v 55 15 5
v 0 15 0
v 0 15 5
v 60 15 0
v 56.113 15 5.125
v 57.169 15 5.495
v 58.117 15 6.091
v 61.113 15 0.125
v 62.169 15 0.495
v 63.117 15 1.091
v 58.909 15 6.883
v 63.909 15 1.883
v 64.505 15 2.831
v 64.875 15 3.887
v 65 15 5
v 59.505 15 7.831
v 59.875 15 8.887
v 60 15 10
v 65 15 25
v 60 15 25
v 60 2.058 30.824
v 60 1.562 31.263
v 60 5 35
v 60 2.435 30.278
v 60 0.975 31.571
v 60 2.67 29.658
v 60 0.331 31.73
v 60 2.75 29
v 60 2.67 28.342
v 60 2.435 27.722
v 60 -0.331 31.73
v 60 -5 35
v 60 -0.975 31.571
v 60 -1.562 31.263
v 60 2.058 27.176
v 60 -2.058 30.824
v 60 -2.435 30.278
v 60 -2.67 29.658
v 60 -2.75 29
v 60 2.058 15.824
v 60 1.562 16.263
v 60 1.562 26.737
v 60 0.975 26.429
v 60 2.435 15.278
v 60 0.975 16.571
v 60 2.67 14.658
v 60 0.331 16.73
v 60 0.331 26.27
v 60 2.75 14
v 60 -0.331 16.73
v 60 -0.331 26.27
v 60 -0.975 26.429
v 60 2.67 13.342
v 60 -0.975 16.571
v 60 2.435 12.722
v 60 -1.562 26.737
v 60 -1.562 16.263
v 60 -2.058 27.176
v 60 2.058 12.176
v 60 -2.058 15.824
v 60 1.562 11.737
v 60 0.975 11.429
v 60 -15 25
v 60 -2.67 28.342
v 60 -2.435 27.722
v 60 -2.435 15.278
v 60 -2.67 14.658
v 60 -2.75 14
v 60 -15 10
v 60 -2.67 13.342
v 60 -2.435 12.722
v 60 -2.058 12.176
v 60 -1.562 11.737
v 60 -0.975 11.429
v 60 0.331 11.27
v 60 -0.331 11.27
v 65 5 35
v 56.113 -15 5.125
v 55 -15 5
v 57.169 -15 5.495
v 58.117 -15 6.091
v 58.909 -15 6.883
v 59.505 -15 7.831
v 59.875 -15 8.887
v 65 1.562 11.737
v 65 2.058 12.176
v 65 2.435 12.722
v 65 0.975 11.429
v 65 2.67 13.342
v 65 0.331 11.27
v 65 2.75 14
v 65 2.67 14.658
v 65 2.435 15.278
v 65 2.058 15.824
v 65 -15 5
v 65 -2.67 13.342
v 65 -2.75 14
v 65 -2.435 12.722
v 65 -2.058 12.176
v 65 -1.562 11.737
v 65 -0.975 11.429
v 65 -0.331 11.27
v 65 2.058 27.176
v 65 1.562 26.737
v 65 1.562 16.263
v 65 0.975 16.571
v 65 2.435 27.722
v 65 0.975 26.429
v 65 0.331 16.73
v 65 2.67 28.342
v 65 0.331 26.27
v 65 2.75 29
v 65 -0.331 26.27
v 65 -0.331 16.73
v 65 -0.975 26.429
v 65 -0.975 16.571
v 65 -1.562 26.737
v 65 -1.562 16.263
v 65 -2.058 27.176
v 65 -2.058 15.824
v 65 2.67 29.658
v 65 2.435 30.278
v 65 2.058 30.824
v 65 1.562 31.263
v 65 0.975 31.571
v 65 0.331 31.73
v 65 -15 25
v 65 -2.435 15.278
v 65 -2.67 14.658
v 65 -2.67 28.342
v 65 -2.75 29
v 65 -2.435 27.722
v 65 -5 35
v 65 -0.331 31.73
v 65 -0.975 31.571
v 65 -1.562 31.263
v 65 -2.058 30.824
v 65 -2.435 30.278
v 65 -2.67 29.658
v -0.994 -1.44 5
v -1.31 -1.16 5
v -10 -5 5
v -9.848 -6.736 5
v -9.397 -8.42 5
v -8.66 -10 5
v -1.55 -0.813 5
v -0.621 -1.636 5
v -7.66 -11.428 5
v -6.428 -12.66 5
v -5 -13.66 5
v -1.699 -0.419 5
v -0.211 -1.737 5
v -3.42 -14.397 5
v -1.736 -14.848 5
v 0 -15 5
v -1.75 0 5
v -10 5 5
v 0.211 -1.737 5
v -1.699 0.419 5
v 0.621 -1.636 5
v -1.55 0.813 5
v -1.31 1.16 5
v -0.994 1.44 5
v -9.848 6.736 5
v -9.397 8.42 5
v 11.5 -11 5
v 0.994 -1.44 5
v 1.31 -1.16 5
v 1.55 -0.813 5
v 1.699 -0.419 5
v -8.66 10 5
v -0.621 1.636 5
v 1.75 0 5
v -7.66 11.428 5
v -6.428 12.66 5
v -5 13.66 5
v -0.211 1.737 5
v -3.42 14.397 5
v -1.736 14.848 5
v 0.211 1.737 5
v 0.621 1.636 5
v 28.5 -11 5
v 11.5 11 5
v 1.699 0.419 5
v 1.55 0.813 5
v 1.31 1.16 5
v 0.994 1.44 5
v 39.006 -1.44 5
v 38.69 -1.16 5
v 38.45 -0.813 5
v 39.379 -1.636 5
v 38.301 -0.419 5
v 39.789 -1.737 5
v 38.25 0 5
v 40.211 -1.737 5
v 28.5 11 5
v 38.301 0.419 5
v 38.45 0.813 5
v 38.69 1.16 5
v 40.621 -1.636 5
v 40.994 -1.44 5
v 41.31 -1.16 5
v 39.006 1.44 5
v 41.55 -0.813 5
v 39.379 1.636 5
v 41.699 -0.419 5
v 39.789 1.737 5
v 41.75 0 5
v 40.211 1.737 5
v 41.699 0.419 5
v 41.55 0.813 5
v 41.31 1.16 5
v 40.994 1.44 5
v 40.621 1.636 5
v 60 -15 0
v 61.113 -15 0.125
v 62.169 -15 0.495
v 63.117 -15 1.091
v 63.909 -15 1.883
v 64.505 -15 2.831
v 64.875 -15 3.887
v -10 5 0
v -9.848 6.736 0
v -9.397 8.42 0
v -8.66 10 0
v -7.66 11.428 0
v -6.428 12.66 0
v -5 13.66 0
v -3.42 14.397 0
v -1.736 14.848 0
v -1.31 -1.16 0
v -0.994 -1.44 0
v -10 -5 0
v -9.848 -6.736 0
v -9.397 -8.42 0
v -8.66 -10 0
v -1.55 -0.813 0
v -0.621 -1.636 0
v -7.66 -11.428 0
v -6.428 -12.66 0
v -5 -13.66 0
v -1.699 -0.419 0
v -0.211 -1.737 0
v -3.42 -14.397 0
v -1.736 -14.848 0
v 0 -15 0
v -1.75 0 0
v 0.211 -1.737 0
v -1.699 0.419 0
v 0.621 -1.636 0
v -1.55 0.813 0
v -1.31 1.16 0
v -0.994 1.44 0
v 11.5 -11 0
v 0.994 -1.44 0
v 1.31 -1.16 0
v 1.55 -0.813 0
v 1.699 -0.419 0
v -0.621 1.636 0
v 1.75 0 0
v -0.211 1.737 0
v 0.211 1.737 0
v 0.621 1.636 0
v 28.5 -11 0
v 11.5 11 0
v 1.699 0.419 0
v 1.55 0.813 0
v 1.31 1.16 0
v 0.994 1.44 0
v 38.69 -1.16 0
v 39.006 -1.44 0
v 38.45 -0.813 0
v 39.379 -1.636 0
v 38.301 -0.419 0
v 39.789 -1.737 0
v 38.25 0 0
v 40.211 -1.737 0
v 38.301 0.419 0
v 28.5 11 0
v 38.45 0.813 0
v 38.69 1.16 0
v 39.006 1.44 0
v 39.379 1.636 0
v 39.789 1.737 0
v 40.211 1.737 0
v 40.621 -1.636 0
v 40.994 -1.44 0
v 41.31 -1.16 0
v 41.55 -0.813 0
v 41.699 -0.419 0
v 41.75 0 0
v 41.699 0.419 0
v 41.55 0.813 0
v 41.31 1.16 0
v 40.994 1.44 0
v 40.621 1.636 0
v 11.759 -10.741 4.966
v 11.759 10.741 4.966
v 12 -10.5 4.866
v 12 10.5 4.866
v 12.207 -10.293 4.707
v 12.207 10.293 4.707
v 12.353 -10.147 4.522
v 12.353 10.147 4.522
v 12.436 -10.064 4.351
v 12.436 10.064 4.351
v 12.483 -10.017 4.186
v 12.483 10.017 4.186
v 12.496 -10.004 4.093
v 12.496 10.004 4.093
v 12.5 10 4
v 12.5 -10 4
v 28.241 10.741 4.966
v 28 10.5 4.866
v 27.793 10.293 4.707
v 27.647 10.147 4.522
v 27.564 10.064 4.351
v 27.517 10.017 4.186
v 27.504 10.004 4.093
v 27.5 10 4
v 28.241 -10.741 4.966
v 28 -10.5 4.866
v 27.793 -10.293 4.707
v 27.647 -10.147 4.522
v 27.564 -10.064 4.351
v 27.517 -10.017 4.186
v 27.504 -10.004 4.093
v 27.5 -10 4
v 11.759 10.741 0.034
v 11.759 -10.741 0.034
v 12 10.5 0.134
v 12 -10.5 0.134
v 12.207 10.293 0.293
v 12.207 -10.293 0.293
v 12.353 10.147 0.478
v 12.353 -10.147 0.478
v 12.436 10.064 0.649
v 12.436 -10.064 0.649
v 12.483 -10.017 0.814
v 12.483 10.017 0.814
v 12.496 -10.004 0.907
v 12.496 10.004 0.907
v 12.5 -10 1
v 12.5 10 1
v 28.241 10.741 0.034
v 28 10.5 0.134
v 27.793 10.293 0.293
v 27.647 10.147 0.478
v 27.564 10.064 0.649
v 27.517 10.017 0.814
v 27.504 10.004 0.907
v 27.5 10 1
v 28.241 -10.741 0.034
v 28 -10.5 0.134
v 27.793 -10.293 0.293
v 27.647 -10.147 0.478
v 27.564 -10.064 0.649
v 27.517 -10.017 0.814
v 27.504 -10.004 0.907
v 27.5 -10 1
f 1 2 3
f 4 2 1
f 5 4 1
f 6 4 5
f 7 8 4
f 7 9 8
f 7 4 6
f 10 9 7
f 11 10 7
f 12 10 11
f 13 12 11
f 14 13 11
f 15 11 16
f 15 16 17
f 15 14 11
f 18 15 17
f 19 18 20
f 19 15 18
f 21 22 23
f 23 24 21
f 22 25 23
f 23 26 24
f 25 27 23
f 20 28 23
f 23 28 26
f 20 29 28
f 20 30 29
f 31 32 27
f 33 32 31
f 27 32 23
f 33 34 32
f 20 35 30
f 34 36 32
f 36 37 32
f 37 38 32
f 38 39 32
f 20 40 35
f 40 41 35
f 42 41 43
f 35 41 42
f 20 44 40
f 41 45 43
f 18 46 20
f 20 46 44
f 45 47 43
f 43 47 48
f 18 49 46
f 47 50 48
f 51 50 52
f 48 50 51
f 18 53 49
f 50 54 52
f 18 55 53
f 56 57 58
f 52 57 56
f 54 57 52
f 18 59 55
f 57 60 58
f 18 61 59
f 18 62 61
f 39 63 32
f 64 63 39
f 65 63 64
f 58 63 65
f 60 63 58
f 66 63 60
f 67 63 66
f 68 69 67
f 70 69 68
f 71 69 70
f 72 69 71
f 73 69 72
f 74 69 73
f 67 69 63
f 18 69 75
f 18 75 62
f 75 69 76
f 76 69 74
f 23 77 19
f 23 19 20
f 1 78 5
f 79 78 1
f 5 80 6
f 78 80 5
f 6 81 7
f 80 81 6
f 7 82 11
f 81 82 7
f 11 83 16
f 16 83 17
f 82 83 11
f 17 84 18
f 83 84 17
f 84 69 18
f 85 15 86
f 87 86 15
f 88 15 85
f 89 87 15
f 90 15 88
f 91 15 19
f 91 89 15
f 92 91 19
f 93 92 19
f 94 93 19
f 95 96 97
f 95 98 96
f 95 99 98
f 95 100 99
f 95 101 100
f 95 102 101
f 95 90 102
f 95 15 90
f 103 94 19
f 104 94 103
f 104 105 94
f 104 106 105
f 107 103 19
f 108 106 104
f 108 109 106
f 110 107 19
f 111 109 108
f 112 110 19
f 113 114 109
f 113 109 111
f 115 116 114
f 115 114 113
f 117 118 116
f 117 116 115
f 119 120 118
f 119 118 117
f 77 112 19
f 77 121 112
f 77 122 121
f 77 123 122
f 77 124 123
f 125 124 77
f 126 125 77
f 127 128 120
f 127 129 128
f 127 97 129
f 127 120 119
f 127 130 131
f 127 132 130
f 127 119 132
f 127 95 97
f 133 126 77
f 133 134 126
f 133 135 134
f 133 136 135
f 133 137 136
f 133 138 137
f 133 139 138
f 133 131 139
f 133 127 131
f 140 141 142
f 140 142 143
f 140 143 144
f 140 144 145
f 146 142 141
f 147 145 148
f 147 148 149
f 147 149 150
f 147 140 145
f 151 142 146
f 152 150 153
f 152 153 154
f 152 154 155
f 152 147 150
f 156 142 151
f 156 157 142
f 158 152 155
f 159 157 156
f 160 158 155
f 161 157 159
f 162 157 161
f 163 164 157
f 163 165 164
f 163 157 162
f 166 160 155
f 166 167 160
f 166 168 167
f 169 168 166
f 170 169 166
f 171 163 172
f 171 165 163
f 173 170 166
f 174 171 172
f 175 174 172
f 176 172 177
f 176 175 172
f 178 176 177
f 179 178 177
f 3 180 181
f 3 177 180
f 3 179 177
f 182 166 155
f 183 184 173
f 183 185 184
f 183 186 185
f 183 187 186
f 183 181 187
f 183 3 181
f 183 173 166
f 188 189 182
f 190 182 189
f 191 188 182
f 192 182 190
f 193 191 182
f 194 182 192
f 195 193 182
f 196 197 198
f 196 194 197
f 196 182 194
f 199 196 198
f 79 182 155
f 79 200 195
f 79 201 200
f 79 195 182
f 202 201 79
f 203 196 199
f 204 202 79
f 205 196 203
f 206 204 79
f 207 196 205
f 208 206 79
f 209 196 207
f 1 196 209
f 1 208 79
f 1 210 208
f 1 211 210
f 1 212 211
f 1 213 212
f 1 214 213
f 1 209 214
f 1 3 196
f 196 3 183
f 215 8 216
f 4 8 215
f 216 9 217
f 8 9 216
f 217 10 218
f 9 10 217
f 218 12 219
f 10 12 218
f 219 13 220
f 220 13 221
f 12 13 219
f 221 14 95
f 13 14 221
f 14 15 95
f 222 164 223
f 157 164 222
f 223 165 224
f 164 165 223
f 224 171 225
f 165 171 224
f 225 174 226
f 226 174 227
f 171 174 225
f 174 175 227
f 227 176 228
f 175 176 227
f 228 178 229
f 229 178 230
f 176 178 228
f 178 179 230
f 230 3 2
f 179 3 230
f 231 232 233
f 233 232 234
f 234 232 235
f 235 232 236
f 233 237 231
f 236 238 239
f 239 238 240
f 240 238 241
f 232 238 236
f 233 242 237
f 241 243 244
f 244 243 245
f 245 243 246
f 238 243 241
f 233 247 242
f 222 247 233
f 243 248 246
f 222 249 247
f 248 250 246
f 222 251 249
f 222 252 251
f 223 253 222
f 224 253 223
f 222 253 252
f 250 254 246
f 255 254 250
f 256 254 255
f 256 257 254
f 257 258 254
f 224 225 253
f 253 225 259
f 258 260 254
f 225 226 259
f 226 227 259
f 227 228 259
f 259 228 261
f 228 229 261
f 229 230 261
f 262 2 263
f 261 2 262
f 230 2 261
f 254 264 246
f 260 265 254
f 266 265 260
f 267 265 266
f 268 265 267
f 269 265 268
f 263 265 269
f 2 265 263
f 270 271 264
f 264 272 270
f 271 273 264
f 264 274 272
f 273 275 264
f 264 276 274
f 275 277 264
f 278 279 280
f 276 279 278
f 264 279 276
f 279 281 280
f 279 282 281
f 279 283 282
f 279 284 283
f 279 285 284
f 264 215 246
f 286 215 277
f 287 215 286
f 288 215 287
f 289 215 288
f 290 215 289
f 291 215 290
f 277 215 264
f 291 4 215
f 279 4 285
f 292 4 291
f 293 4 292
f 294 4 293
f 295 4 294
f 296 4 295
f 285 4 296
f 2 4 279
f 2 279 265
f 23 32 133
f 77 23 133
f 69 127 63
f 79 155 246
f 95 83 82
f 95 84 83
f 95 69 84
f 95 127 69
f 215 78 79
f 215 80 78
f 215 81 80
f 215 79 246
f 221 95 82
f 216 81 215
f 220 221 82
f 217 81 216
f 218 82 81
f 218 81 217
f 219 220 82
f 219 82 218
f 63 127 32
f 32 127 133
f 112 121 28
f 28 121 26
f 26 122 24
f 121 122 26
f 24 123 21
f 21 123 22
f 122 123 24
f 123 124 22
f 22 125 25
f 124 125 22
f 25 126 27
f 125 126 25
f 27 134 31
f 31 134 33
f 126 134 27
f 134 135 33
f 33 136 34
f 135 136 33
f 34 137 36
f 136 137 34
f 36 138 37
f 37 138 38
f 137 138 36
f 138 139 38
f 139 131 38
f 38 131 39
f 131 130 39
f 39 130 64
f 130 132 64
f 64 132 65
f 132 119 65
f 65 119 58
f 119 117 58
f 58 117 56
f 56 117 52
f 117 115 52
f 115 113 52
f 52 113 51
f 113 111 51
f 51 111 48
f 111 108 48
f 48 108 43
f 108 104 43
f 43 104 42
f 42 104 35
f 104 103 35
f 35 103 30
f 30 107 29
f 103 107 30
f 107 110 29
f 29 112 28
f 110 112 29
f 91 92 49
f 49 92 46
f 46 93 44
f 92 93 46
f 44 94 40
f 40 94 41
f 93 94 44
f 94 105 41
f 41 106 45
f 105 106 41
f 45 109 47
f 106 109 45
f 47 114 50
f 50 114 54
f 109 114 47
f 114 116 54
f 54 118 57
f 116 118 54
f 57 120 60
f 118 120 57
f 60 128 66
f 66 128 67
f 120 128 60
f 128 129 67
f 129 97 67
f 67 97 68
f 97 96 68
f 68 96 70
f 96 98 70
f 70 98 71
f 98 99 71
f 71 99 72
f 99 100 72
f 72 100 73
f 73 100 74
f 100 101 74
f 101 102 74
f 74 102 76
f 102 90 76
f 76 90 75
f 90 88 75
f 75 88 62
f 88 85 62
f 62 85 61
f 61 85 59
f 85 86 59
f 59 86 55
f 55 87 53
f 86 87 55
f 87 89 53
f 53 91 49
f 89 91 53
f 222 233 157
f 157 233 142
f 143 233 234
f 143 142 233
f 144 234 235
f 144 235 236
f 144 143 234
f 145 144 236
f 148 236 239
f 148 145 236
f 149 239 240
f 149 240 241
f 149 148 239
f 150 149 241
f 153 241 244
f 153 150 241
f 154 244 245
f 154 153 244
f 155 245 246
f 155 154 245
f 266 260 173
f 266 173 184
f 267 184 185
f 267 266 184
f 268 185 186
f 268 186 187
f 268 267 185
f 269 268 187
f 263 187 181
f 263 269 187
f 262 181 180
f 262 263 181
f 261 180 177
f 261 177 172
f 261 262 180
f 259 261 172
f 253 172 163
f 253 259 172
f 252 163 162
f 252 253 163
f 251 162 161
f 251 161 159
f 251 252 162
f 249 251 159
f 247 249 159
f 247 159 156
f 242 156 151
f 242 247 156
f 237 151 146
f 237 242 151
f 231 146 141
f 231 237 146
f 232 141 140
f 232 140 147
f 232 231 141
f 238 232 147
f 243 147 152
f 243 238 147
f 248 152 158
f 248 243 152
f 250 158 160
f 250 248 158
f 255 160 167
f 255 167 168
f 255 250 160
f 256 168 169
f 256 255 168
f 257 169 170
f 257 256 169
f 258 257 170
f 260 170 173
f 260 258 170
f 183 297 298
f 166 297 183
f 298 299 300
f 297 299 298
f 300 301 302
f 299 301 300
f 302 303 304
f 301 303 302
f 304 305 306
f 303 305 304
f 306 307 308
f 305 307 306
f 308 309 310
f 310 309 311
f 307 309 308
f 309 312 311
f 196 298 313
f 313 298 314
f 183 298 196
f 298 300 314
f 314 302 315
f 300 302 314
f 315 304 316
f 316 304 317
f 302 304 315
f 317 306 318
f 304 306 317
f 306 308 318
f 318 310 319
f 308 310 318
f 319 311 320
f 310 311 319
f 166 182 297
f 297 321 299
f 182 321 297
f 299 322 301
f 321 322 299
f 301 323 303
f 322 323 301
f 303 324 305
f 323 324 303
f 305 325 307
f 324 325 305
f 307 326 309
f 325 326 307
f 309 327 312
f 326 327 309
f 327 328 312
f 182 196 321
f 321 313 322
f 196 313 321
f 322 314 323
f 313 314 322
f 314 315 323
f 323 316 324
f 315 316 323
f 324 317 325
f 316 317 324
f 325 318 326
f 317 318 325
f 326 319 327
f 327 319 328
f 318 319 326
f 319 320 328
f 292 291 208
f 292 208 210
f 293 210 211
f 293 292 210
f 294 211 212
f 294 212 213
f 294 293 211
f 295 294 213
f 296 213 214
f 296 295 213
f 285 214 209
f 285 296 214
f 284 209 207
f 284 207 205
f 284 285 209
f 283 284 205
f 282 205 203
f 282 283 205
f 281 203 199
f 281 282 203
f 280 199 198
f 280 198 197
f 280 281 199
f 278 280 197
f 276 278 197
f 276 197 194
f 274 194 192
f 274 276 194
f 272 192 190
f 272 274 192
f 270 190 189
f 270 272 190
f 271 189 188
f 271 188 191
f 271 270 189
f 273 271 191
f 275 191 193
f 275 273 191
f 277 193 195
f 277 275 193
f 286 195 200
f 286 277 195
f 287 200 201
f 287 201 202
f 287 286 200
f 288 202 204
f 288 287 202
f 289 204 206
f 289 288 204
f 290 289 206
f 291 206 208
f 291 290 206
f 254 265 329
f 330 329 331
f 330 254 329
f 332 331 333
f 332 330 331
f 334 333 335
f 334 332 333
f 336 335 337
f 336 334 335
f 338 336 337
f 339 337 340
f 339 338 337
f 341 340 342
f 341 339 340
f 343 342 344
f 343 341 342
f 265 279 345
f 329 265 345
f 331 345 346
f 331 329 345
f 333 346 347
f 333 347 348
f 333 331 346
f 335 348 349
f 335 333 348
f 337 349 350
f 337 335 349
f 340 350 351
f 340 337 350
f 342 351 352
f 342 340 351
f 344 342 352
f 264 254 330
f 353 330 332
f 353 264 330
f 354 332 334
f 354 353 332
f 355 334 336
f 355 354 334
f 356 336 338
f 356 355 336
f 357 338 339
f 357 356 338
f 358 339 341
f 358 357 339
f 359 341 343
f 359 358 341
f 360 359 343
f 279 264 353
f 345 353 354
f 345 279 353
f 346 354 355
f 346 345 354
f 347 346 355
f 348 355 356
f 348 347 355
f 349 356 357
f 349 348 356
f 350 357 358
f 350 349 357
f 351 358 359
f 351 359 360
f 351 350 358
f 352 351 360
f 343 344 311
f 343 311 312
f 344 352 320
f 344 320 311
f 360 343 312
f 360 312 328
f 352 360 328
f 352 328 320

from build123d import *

# Parameters (mm, degrees)
SKETCH_W     = 75
SKETCH_H     = 30
SKETCH_R     = 1.75
SKETCH_W_2   = 15
SKETCH_H_2   = 20
PAD_DEPTH    = 5
FILLET_R     = 10
FILLET001_R  = 1
SKETCH001_W  = 5
SKETCH001_H  = 30
PAD001_DEPTH = 30
FILLET002_R  = 5
FILLET003_R  = 5
SKETCH002_R  = 2.75
POCKET_DEPTH = 75.001
CHAMFER_SIZE = 10


with BuildPart() as part:
    # Sketch → Pad (new body)
    with BuildSketch(Plane.XY):
        with Locations((27.5, 0)):
            Rectangle(SKETCH_W, SKETCH_H)
        Circle(SKETCH_R, mode=Mode.SUBTRACT)
        with Locations((40, 0)):
            Circle(SKETCH_R, mode=Mode.SUBTRACT)
        with Locations((20, 0)):
            Rectangle(SKETCH_W_2, SKETCH_H_2, mode=Mode.SUBTRACT)
    extrude(amount=PAD_DEPTH)

    # Fillet
    fillet_edges = [part.edges().sort_by_distance(p)[0] for p in [
        (-10, 15, 2.5),
        (-10, -15, 2.5),
    ]]
    fillet(fillet_edges, radius=FILLET_R)

    # Fillet001
    fillet001_edges = [part.edges().sort_by_distance(p)[0] for p in [
        (12.5, 0, 5),
        (12.5, 0, 0),
        (20, 10, 0),
        (20, 10, 5),
        (27.5, 0, 5),
        (20, -10, 5),
        (27.5, 0, 0),
        (20, -10, 0),
    ]]
    fillet(fillet001_edges, radius=FILLET001_R)

    # Sketch001 (on Face18 of Fillet001) → Pad001 (join)
    with BuildSketch(Plane.XY.offset(5)):
        with Locations((62.5, 0)):
            Rectangle(SKETCH001_W, SKETCH001_H)
    extrude(amount=PAD001_DEPTH)

    # Fillet002
    fillet002_edges = [part.edges().sort_by_distance(p)[0] for p in [
        (65, 0, 0),
    ]]
    fillet(fillet002_edges, radius=FILLET002_R)

    # Fillet003
    fillet003_edges = [part.edges().sort_by_distance(p)[0] for p in [
        (60, 0, 5),
    ]]
    fillet(fillet003_edges, radius=FILLET003_R)

    # Sketch002 (on Face9 of Fillet003) → Pocket (cut, through all)
    with BuildSketch(Plane.YZ.offset(65)):
        with Locations((0, 29)):
            Circle(SKETCH002_R)
        with Locations((0, 14)):
            Circle(SKETCH002_R)
    extrude(amount=-POCKET_DEPTH, mode=Mode.SUBTRACT)

    # Chamfer
    chamfer_edges = [part.edges().sort_by_distance(p)[0] for p in [
        (62.5, -15, 35),
        (62.5, 15, 35),
    ]]
    chamfer(chamfer_edges, length=CHAMFER_SIZE)


solid = part.part
